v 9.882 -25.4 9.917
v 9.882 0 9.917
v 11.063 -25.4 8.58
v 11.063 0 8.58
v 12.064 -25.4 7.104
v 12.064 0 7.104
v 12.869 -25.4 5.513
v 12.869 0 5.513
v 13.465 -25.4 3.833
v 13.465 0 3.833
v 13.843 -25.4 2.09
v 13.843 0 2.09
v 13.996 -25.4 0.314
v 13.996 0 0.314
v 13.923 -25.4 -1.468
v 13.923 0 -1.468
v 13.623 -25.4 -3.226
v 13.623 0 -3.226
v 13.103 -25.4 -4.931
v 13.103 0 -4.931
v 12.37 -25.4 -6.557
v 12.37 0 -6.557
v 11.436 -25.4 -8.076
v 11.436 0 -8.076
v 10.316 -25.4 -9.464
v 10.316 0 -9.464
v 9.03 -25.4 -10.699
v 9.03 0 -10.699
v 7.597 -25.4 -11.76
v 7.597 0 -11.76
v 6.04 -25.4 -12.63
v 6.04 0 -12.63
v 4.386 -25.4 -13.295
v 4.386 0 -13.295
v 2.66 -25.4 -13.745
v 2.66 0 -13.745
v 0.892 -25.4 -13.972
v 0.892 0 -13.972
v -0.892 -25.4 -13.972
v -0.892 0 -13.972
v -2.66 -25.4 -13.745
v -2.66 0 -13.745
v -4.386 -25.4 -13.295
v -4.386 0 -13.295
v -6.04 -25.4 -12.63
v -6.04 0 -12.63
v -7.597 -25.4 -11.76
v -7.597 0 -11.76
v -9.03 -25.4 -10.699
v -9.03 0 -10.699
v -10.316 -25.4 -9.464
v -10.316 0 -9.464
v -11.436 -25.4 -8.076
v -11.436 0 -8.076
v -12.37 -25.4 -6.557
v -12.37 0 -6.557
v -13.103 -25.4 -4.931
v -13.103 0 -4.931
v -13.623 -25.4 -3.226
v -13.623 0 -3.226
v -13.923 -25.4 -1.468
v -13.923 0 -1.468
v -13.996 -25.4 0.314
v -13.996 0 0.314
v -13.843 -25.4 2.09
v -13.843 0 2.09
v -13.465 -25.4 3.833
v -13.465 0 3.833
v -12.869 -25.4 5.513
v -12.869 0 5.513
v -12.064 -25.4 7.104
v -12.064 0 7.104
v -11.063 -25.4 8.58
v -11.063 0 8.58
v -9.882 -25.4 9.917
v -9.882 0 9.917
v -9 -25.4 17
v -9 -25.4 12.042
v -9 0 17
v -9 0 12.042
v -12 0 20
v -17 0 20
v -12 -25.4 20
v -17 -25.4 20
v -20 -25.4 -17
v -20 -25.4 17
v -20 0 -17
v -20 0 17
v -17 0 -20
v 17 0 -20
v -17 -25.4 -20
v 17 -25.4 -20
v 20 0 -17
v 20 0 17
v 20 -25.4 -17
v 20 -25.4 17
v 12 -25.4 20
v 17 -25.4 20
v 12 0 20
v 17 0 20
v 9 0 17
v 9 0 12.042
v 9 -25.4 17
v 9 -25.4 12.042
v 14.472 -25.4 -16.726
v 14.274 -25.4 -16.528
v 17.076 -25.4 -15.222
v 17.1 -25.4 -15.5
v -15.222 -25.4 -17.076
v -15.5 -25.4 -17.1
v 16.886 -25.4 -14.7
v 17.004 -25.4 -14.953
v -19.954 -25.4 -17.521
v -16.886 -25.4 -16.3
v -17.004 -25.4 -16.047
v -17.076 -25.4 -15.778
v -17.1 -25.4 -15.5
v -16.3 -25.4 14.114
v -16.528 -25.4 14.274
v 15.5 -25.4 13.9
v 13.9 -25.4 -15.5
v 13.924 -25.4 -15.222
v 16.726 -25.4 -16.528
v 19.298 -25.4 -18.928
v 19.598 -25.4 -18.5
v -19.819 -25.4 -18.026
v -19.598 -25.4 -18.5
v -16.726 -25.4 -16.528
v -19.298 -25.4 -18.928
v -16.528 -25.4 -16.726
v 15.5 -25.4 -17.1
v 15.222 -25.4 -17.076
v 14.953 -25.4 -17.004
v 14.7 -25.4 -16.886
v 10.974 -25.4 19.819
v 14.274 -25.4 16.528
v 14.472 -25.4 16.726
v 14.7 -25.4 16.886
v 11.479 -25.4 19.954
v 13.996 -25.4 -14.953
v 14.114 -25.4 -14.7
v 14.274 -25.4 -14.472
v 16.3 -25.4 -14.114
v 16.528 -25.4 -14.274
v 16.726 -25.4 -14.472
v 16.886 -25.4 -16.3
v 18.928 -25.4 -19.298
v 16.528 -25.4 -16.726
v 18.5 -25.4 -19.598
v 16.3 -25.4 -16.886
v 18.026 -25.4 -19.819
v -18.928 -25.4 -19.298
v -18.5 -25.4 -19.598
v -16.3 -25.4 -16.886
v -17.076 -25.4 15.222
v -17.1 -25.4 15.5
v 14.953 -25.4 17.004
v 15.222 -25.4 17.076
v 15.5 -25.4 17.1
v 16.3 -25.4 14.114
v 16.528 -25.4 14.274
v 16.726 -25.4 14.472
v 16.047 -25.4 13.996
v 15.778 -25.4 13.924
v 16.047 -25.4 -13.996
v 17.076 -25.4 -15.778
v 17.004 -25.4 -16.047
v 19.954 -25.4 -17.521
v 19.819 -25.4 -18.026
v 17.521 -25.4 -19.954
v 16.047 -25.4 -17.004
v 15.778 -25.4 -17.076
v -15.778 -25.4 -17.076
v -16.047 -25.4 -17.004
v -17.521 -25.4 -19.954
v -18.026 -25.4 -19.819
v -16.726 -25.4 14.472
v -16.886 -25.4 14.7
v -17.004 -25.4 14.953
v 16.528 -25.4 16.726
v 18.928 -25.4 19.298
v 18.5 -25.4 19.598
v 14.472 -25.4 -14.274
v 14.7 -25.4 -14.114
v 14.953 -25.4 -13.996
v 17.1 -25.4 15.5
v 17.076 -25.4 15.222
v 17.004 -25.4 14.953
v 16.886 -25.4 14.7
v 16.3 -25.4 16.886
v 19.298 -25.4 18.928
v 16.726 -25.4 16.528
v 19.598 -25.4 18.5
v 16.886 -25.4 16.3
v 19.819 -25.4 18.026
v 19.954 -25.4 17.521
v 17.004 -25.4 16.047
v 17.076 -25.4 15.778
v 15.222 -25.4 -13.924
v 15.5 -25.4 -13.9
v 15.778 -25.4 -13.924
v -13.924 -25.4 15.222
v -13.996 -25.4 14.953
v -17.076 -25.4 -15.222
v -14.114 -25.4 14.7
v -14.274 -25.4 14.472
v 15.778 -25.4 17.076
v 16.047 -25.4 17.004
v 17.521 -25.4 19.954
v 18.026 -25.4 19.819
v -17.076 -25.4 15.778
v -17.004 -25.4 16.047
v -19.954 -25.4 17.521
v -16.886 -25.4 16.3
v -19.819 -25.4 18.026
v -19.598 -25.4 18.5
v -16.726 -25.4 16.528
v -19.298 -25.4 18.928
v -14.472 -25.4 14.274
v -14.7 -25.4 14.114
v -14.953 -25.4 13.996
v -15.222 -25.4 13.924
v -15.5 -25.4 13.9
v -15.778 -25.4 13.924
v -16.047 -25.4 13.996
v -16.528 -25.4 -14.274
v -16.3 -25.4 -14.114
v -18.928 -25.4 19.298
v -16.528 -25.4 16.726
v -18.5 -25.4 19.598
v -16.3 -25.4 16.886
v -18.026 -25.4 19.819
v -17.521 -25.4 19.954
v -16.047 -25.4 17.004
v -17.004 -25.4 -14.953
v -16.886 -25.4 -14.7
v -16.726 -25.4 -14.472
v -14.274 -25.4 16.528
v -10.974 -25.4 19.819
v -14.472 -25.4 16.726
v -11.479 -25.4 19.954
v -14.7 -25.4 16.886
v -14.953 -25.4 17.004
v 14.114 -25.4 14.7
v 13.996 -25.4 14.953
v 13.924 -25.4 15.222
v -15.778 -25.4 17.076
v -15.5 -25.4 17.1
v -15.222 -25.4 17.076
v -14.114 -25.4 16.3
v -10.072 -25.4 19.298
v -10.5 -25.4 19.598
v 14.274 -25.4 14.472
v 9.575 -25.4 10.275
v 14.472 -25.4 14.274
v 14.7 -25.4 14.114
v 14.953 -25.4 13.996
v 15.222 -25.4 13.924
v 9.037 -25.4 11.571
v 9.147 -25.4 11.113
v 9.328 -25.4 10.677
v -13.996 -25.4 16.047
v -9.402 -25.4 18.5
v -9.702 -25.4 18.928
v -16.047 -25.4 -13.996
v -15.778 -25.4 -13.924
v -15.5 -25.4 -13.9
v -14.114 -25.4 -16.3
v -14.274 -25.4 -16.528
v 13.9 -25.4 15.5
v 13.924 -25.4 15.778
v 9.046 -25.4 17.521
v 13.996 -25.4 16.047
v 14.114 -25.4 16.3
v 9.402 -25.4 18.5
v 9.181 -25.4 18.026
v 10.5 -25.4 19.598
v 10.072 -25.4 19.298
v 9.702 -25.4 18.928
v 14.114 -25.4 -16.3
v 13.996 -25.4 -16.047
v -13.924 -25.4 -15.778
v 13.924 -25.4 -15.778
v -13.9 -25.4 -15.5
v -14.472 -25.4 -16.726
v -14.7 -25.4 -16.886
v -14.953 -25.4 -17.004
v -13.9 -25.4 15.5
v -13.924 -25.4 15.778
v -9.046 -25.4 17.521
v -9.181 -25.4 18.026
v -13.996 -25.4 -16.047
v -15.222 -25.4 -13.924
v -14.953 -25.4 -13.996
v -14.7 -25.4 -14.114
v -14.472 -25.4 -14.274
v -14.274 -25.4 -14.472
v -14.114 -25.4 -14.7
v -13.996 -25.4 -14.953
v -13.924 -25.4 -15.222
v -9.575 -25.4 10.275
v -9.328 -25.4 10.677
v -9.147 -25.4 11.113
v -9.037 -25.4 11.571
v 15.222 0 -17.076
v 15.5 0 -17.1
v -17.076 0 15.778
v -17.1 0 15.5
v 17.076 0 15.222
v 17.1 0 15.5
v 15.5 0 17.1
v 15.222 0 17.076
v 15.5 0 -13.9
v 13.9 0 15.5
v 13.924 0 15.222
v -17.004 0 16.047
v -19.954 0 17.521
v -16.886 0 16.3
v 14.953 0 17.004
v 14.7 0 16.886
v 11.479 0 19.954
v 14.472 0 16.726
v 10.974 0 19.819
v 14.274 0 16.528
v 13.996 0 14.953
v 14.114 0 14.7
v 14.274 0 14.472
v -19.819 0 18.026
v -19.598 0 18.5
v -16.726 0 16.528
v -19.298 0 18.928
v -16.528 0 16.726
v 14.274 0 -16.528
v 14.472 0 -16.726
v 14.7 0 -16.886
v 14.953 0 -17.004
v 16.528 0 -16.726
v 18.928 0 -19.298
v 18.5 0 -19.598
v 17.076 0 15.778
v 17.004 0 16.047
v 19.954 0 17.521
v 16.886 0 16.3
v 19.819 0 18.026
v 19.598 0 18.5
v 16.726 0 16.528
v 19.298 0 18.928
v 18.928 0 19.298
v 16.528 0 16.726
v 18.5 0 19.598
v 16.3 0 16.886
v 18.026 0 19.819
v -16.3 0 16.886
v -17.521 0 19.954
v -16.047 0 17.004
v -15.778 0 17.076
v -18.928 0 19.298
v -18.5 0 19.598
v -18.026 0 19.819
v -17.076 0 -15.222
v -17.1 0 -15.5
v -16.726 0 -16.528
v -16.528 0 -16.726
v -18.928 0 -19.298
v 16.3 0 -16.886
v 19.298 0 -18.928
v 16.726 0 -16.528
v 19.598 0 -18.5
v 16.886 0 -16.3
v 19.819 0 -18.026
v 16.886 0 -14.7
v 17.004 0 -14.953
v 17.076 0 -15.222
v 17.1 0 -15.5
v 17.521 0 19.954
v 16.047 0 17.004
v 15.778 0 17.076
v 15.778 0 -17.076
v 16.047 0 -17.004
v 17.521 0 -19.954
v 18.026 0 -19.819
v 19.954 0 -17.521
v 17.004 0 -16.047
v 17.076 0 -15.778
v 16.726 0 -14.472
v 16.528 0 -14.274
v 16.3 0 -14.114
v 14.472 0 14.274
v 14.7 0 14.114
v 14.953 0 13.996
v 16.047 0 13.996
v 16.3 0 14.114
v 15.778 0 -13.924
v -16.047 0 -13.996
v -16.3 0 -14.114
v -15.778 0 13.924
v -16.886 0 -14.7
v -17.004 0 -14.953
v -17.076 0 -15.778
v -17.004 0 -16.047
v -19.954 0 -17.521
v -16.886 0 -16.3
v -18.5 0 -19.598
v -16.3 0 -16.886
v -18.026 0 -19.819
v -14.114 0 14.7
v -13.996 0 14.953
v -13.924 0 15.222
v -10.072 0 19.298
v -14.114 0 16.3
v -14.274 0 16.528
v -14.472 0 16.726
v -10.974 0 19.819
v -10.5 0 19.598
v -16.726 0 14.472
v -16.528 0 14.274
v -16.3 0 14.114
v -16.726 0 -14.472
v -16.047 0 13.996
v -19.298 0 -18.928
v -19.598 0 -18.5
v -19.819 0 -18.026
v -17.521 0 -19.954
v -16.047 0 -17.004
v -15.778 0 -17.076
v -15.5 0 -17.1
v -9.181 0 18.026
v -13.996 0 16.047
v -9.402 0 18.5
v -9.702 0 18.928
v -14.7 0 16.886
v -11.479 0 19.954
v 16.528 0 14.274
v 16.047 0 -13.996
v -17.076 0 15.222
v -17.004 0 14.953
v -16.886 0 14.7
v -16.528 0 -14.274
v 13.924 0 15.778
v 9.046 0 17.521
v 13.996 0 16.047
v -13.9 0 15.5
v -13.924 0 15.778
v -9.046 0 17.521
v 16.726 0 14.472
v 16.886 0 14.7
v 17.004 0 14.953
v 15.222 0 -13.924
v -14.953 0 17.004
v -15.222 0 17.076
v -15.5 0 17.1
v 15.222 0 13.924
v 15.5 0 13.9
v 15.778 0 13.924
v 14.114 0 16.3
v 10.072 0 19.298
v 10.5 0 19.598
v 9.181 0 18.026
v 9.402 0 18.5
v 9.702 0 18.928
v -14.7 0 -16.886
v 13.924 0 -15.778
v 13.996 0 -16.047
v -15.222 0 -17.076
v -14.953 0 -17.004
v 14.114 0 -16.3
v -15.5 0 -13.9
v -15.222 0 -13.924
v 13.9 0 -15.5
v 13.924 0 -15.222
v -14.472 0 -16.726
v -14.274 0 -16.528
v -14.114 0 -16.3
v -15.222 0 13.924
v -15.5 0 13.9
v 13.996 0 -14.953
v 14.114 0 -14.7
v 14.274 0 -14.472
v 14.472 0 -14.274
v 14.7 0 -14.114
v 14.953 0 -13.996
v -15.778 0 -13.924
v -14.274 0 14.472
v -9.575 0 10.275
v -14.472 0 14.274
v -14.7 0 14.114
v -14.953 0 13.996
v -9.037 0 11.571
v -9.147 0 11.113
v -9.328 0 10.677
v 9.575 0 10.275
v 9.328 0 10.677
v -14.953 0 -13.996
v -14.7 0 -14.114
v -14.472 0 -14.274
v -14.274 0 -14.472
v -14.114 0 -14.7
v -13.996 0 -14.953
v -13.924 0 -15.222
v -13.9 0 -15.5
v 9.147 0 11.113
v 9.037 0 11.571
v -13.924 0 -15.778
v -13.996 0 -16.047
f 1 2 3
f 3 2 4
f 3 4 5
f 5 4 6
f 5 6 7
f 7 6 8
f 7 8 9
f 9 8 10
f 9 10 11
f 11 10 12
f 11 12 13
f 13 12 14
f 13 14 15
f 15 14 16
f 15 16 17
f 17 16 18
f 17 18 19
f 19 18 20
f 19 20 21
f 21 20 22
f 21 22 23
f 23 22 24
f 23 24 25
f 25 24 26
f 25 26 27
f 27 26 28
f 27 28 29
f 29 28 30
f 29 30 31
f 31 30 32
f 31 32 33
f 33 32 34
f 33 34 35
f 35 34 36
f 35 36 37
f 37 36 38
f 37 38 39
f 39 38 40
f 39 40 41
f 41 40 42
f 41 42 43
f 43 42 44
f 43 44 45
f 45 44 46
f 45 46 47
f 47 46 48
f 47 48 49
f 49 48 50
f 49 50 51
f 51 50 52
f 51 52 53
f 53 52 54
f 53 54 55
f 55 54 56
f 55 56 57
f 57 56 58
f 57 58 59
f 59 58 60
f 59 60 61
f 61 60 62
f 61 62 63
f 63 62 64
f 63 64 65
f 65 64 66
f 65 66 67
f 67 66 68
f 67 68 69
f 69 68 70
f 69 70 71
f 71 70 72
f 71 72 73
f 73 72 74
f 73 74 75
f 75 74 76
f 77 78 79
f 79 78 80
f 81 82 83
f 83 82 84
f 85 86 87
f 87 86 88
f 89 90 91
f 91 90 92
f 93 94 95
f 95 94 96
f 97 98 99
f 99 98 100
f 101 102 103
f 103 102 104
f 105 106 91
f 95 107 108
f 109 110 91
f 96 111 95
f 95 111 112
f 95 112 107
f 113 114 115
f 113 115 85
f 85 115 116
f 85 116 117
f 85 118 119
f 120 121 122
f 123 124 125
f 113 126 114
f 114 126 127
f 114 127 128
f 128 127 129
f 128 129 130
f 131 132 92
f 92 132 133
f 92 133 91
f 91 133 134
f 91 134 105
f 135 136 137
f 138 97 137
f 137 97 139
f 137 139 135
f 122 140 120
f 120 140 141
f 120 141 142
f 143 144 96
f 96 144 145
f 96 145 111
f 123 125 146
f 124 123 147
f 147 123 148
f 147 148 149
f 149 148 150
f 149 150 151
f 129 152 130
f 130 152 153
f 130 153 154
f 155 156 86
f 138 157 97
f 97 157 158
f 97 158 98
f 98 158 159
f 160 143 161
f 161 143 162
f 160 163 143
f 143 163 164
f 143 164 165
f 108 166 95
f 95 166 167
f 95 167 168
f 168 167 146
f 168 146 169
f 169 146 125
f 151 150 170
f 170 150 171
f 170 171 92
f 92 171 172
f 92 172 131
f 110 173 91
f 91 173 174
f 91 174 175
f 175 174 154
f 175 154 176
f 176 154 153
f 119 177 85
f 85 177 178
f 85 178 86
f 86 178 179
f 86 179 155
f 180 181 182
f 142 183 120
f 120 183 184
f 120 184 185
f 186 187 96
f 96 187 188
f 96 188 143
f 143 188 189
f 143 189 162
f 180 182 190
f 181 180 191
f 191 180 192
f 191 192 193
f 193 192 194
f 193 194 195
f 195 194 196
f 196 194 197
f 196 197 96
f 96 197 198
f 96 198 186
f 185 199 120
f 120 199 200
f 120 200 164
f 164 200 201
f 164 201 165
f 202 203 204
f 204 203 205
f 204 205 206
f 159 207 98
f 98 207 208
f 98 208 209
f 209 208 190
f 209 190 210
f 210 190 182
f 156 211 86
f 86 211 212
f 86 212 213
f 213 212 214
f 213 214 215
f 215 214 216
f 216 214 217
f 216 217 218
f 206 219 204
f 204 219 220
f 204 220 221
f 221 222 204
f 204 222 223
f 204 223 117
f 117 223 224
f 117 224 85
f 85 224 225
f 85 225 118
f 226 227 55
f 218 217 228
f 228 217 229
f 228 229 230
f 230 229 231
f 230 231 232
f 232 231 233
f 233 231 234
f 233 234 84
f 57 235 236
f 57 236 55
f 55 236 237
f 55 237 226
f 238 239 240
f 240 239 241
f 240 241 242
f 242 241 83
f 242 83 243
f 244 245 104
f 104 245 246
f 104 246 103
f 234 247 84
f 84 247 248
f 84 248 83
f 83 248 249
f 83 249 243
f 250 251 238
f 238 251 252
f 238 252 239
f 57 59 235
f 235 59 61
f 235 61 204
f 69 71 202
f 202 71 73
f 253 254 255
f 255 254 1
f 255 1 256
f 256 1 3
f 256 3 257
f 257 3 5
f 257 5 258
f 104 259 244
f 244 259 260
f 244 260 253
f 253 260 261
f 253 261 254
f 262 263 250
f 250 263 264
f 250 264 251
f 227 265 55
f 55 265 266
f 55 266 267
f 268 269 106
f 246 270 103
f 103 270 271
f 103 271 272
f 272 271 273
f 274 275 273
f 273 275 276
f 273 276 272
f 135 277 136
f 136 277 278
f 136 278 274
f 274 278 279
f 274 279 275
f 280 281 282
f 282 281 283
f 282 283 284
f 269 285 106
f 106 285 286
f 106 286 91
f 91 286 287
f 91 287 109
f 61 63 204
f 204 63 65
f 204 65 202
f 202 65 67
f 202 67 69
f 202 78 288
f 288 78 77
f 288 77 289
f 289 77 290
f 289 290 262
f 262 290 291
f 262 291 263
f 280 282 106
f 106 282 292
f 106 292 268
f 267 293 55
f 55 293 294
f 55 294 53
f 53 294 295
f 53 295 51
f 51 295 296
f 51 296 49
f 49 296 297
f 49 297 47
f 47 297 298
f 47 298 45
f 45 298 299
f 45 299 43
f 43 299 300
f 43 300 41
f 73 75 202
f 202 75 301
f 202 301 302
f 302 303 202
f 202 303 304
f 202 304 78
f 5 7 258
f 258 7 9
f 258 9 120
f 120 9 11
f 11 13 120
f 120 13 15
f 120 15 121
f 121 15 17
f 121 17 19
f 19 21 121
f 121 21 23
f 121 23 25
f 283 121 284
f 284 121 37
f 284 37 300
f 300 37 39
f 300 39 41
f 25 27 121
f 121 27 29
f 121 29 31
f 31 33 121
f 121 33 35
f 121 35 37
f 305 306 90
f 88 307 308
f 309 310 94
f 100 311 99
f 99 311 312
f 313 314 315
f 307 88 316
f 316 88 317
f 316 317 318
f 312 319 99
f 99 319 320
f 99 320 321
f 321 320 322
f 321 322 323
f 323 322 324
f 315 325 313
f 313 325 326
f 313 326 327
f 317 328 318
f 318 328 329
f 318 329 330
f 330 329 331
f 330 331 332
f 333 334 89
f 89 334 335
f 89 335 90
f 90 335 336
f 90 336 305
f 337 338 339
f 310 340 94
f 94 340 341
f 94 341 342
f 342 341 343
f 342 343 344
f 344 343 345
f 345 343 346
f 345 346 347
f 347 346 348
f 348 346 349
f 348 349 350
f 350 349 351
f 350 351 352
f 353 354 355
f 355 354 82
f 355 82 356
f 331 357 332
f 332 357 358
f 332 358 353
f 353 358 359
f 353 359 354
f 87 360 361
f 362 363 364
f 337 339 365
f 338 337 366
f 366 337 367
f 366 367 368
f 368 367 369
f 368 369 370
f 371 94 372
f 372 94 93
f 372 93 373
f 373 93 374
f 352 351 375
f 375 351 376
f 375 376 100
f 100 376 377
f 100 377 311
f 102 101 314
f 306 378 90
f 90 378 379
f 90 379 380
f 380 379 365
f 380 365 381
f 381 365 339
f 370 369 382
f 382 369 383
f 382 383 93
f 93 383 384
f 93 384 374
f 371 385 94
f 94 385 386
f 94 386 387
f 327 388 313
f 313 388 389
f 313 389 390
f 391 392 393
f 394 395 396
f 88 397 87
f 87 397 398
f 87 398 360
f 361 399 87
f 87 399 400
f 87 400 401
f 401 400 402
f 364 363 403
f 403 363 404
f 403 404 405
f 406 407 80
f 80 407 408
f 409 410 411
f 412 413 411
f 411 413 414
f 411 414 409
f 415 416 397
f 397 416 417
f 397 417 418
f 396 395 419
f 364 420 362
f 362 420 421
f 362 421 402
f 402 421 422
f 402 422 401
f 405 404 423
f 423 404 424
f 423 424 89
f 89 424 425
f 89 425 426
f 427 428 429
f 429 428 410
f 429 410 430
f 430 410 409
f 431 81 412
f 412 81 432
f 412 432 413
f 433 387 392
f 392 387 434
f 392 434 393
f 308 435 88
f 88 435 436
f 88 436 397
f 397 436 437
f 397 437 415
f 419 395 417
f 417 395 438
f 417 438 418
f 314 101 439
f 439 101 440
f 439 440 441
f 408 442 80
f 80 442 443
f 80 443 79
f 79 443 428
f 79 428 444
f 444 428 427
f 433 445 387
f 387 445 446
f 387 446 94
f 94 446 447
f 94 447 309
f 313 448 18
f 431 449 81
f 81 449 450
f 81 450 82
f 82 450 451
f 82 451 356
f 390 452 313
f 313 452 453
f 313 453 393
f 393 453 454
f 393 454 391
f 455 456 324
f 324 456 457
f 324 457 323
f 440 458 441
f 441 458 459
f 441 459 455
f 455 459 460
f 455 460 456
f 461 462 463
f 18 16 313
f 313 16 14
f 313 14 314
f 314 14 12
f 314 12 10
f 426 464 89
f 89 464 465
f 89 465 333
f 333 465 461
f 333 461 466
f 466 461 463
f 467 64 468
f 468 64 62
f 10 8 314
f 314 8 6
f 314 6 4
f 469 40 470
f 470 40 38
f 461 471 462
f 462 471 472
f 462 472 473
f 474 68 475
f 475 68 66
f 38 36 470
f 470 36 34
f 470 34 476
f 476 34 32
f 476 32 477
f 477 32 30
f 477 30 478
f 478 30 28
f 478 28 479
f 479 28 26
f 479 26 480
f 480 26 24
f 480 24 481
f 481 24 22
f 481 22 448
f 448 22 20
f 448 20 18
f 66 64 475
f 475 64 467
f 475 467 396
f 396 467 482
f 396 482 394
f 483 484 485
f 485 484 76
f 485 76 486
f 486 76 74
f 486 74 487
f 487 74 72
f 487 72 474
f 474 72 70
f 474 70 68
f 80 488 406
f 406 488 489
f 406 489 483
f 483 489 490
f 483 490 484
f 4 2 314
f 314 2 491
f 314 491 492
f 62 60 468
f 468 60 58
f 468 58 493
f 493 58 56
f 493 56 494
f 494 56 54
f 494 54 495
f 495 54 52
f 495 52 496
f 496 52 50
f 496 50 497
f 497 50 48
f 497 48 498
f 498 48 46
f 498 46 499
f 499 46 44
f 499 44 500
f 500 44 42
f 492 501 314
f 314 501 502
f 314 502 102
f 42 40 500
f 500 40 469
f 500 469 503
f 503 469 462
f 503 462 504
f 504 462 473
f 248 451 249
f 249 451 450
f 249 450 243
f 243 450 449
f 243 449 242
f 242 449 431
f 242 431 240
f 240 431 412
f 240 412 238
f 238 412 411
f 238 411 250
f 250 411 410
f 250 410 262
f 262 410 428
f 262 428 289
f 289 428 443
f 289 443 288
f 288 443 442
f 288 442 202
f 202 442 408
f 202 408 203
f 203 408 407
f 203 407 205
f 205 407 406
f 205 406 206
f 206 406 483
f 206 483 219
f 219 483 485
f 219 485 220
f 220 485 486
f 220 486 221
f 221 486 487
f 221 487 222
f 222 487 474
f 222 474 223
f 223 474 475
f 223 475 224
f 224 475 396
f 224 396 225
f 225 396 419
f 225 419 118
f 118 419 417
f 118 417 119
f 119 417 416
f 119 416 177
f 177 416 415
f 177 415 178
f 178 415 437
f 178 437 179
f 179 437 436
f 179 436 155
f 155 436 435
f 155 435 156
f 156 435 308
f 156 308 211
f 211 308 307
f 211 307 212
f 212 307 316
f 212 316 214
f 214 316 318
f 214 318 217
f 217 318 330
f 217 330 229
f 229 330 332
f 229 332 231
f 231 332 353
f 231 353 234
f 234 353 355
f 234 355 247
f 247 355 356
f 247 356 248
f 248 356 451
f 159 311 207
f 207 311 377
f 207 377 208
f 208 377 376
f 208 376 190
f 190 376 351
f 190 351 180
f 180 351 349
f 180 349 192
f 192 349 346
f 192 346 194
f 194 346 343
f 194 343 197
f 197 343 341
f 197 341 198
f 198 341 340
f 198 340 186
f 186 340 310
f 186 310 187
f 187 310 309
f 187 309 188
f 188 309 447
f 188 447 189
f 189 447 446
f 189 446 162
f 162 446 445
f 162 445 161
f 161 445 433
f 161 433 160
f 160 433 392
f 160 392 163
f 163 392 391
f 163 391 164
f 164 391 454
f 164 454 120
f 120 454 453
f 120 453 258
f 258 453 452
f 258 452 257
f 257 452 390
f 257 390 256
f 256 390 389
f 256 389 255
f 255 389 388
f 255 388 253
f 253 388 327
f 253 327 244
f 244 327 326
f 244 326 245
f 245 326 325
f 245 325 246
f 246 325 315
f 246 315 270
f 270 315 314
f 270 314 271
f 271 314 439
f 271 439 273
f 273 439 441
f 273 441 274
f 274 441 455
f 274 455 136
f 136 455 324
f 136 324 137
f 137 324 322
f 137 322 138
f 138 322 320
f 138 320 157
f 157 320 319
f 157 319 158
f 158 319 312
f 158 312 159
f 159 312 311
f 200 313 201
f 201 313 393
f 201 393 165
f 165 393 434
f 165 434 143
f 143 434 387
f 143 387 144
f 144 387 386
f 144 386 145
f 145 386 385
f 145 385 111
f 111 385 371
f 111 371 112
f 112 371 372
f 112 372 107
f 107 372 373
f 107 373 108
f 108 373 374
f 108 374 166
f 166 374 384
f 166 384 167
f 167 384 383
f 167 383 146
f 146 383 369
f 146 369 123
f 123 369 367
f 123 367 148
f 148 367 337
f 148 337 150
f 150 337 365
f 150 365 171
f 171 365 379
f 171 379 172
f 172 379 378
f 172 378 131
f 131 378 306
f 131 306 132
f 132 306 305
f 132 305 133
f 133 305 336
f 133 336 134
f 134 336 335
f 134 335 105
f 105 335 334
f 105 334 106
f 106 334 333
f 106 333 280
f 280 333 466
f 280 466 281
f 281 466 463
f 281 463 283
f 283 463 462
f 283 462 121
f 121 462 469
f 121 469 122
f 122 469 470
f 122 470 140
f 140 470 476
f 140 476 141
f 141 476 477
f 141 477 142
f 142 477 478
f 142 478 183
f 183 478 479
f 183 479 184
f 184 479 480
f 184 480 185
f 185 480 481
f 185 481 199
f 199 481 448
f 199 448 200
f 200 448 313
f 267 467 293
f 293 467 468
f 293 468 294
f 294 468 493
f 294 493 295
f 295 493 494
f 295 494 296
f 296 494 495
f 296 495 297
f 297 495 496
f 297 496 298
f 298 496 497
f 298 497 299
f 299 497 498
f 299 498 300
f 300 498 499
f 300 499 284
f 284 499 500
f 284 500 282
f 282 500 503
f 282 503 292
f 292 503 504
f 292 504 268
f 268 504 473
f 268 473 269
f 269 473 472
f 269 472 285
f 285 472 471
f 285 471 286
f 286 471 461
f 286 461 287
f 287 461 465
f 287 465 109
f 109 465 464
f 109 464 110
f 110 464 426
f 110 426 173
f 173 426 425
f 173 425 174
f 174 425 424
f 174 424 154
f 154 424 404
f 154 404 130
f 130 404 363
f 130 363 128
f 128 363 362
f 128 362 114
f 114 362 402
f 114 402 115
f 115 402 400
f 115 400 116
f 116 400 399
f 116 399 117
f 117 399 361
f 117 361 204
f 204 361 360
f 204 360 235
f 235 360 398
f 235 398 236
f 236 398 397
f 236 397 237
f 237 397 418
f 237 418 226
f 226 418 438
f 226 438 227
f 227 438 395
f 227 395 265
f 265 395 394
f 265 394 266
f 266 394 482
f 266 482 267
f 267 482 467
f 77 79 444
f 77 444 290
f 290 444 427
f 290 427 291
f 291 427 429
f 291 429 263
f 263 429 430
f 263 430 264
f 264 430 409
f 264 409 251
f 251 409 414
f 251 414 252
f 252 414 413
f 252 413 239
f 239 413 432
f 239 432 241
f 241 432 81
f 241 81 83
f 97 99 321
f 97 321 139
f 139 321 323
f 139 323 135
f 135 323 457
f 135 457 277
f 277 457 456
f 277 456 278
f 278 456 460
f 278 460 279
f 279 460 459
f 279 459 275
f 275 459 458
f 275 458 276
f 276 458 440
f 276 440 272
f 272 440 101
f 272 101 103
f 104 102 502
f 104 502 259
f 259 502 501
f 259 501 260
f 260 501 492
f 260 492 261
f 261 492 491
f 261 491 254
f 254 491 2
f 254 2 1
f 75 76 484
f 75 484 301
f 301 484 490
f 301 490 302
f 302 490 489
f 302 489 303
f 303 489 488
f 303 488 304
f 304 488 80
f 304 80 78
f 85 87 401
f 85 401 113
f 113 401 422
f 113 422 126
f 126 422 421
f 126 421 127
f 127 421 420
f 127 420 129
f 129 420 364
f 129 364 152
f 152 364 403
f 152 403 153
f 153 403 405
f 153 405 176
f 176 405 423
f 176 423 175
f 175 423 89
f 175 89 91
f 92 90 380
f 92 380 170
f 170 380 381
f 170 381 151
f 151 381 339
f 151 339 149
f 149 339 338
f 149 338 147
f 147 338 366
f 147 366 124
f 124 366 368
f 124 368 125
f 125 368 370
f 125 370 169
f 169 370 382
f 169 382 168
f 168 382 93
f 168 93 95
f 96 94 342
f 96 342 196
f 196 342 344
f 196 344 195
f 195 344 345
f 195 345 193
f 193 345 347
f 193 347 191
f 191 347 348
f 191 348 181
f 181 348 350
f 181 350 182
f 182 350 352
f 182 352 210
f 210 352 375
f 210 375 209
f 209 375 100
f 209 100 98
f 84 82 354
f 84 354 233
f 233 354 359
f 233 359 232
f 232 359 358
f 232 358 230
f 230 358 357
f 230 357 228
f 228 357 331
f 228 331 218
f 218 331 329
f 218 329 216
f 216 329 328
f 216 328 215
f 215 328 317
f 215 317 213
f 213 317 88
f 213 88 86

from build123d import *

# Parameters (mm, degrees)
BOSS_EXTRUDE1_DEPTH  = 25.4
M3_CLEARANCE_HOLE1_D = 3.2
FILLET1_R            = 3


with BuildPart() as part:
    # Sketch1 → Boss-Extrude1 (new body)
    with BuildSketch(Plane(origin=(0, 0, 0), x_dir=(1, 0, 0), z_dir=(0, 1, 0))):
        with BuildLine():
            Line((-20, -20), (-9, -20))
            Line((-9, -20), (-9, -10.723805295))
            ThreePointArc((-9, -10.723805295), (0, 14), (9, -10.723805295))
            Line((9, -10.723805295), (9, -20))
            Line((9, -20), (20, -20))
            Line((20, -20), (20, 20))
            Line((20, 20), (-20, 20))
            Line((-20, 20), (-20, -20))
        make_face()
    extrude(amount=-BOSS_EXTRUDE1_DEPTH)

    # M3 Clearance Hole1 (through all)
    with Locations(Plane(origin=(-15.5, 0, -15.5), x_dir=(0, 0, 1), z_dir=(0, 1, 0))):
        with Locations((0, 0), (0, 31), (31, 31), (31, 0)):
            Hole(M3_CLEARANCE_HOLE1_D / 2)

    # Fillet1
    fillet1_edges = [part.edges().sort_by_distance(p)[0] for p in [
        (-9, -12.7, 10.723805295),
        (-9, -12.7, 20),
        (-20, -12.7, 20),
        (-20, -12.7, -20),
        (20, -12.7, -20),
        (20, -12.7, 20),
        (9, -12.7, 20),
        (9, -12.7, 10.723805295),
    ]]
    fillet(fillet1_edges, radius=FILLET1_R)


solid = part.part
